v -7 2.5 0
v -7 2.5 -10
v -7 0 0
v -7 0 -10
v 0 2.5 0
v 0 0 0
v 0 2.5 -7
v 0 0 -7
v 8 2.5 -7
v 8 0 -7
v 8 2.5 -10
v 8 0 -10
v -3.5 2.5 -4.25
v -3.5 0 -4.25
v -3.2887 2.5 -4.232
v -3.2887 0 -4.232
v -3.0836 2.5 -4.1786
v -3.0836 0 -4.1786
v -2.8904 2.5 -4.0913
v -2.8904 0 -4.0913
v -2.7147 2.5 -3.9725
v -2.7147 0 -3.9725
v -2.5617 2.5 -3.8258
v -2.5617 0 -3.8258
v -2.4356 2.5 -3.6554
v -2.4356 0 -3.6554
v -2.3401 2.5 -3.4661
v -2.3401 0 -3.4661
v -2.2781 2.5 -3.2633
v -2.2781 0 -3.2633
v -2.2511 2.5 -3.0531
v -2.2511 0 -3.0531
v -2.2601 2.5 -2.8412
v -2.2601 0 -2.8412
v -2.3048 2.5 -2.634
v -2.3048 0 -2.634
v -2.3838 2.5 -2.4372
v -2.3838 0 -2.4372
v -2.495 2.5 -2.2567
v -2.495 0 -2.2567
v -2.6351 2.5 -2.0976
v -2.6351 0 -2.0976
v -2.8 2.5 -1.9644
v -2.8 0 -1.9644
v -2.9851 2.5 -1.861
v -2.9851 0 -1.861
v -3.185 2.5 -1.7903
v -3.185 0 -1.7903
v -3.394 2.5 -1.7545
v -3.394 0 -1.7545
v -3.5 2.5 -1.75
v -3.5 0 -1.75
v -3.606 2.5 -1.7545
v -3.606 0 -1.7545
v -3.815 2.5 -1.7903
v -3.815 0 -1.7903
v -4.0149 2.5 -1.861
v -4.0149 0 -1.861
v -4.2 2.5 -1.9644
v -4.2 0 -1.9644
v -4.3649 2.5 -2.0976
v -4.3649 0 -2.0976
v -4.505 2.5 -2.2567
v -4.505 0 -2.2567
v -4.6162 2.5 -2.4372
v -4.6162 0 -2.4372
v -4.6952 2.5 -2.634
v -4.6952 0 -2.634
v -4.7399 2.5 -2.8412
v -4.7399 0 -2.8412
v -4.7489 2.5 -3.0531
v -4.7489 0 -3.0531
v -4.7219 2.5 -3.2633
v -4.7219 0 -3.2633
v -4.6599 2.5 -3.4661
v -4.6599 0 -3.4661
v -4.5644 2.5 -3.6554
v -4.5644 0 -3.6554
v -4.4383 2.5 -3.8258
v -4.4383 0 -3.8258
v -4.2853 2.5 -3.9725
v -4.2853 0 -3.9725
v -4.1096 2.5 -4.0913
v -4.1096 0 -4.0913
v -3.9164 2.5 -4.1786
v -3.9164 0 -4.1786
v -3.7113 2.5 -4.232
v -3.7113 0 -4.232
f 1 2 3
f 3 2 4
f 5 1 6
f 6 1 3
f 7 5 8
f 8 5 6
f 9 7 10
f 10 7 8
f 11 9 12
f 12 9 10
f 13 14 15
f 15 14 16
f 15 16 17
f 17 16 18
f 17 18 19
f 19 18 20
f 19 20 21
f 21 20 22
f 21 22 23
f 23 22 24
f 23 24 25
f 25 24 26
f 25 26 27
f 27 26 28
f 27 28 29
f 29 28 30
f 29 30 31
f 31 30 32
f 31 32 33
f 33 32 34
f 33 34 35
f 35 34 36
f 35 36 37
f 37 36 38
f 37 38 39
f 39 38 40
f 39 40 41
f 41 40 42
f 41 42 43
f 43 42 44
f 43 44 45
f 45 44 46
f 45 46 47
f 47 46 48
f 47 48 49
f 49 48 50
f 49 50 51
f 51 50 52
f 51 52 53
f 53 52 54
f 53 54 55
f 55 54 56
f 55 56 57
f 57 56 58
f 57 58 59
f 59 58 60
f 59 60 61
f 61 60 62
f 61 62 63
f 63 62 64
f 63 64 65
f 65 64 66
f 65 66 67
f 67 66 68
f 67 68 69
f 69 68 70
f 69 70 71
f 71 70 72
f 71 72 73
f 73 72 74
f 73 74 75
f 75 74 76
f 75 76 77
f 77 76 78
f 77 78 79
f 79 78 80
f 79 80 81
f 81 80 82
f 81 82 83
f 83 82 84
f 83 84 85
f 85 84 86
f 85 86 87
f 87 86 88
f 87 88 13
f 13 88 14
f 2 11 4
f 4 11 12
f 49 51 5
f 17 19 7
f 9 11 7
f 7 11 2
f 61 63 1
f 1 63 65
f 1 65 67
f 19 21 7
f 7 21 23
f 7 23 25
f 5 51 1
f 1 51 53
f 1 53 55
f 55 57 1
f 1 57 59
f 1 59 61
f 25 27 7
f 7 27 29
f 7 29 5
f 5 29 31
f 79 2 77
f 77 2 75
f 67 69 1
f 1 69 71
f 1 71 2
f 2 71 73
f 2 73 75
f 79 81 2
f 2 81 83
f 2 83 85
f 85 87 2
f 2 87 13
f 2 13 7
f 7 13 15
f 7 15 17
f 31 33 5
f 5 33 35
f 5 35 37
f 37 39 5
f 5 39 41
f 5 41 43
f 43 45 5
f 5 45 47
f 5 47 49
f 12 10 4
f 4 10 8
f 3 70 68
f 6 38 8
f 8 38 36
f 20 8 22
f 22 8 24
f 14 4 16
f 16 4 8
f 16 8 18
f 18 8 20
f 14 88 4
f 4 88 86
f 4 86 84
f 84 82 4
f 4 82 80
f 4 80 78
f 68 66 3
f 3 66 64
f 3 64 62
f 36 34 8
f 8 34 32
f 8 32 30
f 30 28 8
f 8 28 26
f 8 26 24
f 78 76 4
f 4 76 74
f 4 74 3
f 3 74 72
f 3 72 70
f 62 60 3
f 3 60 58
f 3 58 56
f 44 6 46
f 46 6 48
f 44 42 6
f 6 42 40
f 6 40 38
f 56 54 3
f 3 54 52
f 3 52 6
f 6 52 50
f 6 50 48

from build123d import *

# Parameters (mm, degrees)
SKETCH4_W           = 7
SKETCH4_H           = 7
SKETCH4_R           = 1.25
BOSS_EXTRUDE2_DEPTH = 2.5


with BuildPart() as part:
    # Sketch4 → Boss-Extrude2 (new body)
    # profile 1 of 2: a face of its own
    with BuildSketch(Plane(origin=(0, 0, 0), x_dir=(1, 0, 0), z_dir=(0, 1, 0))):
        with Locations((-3.5, 3.5)):
            Rectangle(SKETCH4_W, SKETCH4_H)
        with Locations(Location((-3.5, 3, 0), (0, 0, 270))):
            Circle(SKETCH4_R, mode=Mode.SUBTRACT)
    # profile 2 of 2: a face of its own
    with BuildSketch(Plane(origin=(0, 0, 0), x_dir=(1, 0, 0), z_dir=(0, 1, 0))):
        Polygon((-7, 7), (0, 7), (8, 7), (8, 10), (-7, 10), align=None)
    extrude(amount=BOSS_EXTRUDE2_DEPTH)


solid = part.part
